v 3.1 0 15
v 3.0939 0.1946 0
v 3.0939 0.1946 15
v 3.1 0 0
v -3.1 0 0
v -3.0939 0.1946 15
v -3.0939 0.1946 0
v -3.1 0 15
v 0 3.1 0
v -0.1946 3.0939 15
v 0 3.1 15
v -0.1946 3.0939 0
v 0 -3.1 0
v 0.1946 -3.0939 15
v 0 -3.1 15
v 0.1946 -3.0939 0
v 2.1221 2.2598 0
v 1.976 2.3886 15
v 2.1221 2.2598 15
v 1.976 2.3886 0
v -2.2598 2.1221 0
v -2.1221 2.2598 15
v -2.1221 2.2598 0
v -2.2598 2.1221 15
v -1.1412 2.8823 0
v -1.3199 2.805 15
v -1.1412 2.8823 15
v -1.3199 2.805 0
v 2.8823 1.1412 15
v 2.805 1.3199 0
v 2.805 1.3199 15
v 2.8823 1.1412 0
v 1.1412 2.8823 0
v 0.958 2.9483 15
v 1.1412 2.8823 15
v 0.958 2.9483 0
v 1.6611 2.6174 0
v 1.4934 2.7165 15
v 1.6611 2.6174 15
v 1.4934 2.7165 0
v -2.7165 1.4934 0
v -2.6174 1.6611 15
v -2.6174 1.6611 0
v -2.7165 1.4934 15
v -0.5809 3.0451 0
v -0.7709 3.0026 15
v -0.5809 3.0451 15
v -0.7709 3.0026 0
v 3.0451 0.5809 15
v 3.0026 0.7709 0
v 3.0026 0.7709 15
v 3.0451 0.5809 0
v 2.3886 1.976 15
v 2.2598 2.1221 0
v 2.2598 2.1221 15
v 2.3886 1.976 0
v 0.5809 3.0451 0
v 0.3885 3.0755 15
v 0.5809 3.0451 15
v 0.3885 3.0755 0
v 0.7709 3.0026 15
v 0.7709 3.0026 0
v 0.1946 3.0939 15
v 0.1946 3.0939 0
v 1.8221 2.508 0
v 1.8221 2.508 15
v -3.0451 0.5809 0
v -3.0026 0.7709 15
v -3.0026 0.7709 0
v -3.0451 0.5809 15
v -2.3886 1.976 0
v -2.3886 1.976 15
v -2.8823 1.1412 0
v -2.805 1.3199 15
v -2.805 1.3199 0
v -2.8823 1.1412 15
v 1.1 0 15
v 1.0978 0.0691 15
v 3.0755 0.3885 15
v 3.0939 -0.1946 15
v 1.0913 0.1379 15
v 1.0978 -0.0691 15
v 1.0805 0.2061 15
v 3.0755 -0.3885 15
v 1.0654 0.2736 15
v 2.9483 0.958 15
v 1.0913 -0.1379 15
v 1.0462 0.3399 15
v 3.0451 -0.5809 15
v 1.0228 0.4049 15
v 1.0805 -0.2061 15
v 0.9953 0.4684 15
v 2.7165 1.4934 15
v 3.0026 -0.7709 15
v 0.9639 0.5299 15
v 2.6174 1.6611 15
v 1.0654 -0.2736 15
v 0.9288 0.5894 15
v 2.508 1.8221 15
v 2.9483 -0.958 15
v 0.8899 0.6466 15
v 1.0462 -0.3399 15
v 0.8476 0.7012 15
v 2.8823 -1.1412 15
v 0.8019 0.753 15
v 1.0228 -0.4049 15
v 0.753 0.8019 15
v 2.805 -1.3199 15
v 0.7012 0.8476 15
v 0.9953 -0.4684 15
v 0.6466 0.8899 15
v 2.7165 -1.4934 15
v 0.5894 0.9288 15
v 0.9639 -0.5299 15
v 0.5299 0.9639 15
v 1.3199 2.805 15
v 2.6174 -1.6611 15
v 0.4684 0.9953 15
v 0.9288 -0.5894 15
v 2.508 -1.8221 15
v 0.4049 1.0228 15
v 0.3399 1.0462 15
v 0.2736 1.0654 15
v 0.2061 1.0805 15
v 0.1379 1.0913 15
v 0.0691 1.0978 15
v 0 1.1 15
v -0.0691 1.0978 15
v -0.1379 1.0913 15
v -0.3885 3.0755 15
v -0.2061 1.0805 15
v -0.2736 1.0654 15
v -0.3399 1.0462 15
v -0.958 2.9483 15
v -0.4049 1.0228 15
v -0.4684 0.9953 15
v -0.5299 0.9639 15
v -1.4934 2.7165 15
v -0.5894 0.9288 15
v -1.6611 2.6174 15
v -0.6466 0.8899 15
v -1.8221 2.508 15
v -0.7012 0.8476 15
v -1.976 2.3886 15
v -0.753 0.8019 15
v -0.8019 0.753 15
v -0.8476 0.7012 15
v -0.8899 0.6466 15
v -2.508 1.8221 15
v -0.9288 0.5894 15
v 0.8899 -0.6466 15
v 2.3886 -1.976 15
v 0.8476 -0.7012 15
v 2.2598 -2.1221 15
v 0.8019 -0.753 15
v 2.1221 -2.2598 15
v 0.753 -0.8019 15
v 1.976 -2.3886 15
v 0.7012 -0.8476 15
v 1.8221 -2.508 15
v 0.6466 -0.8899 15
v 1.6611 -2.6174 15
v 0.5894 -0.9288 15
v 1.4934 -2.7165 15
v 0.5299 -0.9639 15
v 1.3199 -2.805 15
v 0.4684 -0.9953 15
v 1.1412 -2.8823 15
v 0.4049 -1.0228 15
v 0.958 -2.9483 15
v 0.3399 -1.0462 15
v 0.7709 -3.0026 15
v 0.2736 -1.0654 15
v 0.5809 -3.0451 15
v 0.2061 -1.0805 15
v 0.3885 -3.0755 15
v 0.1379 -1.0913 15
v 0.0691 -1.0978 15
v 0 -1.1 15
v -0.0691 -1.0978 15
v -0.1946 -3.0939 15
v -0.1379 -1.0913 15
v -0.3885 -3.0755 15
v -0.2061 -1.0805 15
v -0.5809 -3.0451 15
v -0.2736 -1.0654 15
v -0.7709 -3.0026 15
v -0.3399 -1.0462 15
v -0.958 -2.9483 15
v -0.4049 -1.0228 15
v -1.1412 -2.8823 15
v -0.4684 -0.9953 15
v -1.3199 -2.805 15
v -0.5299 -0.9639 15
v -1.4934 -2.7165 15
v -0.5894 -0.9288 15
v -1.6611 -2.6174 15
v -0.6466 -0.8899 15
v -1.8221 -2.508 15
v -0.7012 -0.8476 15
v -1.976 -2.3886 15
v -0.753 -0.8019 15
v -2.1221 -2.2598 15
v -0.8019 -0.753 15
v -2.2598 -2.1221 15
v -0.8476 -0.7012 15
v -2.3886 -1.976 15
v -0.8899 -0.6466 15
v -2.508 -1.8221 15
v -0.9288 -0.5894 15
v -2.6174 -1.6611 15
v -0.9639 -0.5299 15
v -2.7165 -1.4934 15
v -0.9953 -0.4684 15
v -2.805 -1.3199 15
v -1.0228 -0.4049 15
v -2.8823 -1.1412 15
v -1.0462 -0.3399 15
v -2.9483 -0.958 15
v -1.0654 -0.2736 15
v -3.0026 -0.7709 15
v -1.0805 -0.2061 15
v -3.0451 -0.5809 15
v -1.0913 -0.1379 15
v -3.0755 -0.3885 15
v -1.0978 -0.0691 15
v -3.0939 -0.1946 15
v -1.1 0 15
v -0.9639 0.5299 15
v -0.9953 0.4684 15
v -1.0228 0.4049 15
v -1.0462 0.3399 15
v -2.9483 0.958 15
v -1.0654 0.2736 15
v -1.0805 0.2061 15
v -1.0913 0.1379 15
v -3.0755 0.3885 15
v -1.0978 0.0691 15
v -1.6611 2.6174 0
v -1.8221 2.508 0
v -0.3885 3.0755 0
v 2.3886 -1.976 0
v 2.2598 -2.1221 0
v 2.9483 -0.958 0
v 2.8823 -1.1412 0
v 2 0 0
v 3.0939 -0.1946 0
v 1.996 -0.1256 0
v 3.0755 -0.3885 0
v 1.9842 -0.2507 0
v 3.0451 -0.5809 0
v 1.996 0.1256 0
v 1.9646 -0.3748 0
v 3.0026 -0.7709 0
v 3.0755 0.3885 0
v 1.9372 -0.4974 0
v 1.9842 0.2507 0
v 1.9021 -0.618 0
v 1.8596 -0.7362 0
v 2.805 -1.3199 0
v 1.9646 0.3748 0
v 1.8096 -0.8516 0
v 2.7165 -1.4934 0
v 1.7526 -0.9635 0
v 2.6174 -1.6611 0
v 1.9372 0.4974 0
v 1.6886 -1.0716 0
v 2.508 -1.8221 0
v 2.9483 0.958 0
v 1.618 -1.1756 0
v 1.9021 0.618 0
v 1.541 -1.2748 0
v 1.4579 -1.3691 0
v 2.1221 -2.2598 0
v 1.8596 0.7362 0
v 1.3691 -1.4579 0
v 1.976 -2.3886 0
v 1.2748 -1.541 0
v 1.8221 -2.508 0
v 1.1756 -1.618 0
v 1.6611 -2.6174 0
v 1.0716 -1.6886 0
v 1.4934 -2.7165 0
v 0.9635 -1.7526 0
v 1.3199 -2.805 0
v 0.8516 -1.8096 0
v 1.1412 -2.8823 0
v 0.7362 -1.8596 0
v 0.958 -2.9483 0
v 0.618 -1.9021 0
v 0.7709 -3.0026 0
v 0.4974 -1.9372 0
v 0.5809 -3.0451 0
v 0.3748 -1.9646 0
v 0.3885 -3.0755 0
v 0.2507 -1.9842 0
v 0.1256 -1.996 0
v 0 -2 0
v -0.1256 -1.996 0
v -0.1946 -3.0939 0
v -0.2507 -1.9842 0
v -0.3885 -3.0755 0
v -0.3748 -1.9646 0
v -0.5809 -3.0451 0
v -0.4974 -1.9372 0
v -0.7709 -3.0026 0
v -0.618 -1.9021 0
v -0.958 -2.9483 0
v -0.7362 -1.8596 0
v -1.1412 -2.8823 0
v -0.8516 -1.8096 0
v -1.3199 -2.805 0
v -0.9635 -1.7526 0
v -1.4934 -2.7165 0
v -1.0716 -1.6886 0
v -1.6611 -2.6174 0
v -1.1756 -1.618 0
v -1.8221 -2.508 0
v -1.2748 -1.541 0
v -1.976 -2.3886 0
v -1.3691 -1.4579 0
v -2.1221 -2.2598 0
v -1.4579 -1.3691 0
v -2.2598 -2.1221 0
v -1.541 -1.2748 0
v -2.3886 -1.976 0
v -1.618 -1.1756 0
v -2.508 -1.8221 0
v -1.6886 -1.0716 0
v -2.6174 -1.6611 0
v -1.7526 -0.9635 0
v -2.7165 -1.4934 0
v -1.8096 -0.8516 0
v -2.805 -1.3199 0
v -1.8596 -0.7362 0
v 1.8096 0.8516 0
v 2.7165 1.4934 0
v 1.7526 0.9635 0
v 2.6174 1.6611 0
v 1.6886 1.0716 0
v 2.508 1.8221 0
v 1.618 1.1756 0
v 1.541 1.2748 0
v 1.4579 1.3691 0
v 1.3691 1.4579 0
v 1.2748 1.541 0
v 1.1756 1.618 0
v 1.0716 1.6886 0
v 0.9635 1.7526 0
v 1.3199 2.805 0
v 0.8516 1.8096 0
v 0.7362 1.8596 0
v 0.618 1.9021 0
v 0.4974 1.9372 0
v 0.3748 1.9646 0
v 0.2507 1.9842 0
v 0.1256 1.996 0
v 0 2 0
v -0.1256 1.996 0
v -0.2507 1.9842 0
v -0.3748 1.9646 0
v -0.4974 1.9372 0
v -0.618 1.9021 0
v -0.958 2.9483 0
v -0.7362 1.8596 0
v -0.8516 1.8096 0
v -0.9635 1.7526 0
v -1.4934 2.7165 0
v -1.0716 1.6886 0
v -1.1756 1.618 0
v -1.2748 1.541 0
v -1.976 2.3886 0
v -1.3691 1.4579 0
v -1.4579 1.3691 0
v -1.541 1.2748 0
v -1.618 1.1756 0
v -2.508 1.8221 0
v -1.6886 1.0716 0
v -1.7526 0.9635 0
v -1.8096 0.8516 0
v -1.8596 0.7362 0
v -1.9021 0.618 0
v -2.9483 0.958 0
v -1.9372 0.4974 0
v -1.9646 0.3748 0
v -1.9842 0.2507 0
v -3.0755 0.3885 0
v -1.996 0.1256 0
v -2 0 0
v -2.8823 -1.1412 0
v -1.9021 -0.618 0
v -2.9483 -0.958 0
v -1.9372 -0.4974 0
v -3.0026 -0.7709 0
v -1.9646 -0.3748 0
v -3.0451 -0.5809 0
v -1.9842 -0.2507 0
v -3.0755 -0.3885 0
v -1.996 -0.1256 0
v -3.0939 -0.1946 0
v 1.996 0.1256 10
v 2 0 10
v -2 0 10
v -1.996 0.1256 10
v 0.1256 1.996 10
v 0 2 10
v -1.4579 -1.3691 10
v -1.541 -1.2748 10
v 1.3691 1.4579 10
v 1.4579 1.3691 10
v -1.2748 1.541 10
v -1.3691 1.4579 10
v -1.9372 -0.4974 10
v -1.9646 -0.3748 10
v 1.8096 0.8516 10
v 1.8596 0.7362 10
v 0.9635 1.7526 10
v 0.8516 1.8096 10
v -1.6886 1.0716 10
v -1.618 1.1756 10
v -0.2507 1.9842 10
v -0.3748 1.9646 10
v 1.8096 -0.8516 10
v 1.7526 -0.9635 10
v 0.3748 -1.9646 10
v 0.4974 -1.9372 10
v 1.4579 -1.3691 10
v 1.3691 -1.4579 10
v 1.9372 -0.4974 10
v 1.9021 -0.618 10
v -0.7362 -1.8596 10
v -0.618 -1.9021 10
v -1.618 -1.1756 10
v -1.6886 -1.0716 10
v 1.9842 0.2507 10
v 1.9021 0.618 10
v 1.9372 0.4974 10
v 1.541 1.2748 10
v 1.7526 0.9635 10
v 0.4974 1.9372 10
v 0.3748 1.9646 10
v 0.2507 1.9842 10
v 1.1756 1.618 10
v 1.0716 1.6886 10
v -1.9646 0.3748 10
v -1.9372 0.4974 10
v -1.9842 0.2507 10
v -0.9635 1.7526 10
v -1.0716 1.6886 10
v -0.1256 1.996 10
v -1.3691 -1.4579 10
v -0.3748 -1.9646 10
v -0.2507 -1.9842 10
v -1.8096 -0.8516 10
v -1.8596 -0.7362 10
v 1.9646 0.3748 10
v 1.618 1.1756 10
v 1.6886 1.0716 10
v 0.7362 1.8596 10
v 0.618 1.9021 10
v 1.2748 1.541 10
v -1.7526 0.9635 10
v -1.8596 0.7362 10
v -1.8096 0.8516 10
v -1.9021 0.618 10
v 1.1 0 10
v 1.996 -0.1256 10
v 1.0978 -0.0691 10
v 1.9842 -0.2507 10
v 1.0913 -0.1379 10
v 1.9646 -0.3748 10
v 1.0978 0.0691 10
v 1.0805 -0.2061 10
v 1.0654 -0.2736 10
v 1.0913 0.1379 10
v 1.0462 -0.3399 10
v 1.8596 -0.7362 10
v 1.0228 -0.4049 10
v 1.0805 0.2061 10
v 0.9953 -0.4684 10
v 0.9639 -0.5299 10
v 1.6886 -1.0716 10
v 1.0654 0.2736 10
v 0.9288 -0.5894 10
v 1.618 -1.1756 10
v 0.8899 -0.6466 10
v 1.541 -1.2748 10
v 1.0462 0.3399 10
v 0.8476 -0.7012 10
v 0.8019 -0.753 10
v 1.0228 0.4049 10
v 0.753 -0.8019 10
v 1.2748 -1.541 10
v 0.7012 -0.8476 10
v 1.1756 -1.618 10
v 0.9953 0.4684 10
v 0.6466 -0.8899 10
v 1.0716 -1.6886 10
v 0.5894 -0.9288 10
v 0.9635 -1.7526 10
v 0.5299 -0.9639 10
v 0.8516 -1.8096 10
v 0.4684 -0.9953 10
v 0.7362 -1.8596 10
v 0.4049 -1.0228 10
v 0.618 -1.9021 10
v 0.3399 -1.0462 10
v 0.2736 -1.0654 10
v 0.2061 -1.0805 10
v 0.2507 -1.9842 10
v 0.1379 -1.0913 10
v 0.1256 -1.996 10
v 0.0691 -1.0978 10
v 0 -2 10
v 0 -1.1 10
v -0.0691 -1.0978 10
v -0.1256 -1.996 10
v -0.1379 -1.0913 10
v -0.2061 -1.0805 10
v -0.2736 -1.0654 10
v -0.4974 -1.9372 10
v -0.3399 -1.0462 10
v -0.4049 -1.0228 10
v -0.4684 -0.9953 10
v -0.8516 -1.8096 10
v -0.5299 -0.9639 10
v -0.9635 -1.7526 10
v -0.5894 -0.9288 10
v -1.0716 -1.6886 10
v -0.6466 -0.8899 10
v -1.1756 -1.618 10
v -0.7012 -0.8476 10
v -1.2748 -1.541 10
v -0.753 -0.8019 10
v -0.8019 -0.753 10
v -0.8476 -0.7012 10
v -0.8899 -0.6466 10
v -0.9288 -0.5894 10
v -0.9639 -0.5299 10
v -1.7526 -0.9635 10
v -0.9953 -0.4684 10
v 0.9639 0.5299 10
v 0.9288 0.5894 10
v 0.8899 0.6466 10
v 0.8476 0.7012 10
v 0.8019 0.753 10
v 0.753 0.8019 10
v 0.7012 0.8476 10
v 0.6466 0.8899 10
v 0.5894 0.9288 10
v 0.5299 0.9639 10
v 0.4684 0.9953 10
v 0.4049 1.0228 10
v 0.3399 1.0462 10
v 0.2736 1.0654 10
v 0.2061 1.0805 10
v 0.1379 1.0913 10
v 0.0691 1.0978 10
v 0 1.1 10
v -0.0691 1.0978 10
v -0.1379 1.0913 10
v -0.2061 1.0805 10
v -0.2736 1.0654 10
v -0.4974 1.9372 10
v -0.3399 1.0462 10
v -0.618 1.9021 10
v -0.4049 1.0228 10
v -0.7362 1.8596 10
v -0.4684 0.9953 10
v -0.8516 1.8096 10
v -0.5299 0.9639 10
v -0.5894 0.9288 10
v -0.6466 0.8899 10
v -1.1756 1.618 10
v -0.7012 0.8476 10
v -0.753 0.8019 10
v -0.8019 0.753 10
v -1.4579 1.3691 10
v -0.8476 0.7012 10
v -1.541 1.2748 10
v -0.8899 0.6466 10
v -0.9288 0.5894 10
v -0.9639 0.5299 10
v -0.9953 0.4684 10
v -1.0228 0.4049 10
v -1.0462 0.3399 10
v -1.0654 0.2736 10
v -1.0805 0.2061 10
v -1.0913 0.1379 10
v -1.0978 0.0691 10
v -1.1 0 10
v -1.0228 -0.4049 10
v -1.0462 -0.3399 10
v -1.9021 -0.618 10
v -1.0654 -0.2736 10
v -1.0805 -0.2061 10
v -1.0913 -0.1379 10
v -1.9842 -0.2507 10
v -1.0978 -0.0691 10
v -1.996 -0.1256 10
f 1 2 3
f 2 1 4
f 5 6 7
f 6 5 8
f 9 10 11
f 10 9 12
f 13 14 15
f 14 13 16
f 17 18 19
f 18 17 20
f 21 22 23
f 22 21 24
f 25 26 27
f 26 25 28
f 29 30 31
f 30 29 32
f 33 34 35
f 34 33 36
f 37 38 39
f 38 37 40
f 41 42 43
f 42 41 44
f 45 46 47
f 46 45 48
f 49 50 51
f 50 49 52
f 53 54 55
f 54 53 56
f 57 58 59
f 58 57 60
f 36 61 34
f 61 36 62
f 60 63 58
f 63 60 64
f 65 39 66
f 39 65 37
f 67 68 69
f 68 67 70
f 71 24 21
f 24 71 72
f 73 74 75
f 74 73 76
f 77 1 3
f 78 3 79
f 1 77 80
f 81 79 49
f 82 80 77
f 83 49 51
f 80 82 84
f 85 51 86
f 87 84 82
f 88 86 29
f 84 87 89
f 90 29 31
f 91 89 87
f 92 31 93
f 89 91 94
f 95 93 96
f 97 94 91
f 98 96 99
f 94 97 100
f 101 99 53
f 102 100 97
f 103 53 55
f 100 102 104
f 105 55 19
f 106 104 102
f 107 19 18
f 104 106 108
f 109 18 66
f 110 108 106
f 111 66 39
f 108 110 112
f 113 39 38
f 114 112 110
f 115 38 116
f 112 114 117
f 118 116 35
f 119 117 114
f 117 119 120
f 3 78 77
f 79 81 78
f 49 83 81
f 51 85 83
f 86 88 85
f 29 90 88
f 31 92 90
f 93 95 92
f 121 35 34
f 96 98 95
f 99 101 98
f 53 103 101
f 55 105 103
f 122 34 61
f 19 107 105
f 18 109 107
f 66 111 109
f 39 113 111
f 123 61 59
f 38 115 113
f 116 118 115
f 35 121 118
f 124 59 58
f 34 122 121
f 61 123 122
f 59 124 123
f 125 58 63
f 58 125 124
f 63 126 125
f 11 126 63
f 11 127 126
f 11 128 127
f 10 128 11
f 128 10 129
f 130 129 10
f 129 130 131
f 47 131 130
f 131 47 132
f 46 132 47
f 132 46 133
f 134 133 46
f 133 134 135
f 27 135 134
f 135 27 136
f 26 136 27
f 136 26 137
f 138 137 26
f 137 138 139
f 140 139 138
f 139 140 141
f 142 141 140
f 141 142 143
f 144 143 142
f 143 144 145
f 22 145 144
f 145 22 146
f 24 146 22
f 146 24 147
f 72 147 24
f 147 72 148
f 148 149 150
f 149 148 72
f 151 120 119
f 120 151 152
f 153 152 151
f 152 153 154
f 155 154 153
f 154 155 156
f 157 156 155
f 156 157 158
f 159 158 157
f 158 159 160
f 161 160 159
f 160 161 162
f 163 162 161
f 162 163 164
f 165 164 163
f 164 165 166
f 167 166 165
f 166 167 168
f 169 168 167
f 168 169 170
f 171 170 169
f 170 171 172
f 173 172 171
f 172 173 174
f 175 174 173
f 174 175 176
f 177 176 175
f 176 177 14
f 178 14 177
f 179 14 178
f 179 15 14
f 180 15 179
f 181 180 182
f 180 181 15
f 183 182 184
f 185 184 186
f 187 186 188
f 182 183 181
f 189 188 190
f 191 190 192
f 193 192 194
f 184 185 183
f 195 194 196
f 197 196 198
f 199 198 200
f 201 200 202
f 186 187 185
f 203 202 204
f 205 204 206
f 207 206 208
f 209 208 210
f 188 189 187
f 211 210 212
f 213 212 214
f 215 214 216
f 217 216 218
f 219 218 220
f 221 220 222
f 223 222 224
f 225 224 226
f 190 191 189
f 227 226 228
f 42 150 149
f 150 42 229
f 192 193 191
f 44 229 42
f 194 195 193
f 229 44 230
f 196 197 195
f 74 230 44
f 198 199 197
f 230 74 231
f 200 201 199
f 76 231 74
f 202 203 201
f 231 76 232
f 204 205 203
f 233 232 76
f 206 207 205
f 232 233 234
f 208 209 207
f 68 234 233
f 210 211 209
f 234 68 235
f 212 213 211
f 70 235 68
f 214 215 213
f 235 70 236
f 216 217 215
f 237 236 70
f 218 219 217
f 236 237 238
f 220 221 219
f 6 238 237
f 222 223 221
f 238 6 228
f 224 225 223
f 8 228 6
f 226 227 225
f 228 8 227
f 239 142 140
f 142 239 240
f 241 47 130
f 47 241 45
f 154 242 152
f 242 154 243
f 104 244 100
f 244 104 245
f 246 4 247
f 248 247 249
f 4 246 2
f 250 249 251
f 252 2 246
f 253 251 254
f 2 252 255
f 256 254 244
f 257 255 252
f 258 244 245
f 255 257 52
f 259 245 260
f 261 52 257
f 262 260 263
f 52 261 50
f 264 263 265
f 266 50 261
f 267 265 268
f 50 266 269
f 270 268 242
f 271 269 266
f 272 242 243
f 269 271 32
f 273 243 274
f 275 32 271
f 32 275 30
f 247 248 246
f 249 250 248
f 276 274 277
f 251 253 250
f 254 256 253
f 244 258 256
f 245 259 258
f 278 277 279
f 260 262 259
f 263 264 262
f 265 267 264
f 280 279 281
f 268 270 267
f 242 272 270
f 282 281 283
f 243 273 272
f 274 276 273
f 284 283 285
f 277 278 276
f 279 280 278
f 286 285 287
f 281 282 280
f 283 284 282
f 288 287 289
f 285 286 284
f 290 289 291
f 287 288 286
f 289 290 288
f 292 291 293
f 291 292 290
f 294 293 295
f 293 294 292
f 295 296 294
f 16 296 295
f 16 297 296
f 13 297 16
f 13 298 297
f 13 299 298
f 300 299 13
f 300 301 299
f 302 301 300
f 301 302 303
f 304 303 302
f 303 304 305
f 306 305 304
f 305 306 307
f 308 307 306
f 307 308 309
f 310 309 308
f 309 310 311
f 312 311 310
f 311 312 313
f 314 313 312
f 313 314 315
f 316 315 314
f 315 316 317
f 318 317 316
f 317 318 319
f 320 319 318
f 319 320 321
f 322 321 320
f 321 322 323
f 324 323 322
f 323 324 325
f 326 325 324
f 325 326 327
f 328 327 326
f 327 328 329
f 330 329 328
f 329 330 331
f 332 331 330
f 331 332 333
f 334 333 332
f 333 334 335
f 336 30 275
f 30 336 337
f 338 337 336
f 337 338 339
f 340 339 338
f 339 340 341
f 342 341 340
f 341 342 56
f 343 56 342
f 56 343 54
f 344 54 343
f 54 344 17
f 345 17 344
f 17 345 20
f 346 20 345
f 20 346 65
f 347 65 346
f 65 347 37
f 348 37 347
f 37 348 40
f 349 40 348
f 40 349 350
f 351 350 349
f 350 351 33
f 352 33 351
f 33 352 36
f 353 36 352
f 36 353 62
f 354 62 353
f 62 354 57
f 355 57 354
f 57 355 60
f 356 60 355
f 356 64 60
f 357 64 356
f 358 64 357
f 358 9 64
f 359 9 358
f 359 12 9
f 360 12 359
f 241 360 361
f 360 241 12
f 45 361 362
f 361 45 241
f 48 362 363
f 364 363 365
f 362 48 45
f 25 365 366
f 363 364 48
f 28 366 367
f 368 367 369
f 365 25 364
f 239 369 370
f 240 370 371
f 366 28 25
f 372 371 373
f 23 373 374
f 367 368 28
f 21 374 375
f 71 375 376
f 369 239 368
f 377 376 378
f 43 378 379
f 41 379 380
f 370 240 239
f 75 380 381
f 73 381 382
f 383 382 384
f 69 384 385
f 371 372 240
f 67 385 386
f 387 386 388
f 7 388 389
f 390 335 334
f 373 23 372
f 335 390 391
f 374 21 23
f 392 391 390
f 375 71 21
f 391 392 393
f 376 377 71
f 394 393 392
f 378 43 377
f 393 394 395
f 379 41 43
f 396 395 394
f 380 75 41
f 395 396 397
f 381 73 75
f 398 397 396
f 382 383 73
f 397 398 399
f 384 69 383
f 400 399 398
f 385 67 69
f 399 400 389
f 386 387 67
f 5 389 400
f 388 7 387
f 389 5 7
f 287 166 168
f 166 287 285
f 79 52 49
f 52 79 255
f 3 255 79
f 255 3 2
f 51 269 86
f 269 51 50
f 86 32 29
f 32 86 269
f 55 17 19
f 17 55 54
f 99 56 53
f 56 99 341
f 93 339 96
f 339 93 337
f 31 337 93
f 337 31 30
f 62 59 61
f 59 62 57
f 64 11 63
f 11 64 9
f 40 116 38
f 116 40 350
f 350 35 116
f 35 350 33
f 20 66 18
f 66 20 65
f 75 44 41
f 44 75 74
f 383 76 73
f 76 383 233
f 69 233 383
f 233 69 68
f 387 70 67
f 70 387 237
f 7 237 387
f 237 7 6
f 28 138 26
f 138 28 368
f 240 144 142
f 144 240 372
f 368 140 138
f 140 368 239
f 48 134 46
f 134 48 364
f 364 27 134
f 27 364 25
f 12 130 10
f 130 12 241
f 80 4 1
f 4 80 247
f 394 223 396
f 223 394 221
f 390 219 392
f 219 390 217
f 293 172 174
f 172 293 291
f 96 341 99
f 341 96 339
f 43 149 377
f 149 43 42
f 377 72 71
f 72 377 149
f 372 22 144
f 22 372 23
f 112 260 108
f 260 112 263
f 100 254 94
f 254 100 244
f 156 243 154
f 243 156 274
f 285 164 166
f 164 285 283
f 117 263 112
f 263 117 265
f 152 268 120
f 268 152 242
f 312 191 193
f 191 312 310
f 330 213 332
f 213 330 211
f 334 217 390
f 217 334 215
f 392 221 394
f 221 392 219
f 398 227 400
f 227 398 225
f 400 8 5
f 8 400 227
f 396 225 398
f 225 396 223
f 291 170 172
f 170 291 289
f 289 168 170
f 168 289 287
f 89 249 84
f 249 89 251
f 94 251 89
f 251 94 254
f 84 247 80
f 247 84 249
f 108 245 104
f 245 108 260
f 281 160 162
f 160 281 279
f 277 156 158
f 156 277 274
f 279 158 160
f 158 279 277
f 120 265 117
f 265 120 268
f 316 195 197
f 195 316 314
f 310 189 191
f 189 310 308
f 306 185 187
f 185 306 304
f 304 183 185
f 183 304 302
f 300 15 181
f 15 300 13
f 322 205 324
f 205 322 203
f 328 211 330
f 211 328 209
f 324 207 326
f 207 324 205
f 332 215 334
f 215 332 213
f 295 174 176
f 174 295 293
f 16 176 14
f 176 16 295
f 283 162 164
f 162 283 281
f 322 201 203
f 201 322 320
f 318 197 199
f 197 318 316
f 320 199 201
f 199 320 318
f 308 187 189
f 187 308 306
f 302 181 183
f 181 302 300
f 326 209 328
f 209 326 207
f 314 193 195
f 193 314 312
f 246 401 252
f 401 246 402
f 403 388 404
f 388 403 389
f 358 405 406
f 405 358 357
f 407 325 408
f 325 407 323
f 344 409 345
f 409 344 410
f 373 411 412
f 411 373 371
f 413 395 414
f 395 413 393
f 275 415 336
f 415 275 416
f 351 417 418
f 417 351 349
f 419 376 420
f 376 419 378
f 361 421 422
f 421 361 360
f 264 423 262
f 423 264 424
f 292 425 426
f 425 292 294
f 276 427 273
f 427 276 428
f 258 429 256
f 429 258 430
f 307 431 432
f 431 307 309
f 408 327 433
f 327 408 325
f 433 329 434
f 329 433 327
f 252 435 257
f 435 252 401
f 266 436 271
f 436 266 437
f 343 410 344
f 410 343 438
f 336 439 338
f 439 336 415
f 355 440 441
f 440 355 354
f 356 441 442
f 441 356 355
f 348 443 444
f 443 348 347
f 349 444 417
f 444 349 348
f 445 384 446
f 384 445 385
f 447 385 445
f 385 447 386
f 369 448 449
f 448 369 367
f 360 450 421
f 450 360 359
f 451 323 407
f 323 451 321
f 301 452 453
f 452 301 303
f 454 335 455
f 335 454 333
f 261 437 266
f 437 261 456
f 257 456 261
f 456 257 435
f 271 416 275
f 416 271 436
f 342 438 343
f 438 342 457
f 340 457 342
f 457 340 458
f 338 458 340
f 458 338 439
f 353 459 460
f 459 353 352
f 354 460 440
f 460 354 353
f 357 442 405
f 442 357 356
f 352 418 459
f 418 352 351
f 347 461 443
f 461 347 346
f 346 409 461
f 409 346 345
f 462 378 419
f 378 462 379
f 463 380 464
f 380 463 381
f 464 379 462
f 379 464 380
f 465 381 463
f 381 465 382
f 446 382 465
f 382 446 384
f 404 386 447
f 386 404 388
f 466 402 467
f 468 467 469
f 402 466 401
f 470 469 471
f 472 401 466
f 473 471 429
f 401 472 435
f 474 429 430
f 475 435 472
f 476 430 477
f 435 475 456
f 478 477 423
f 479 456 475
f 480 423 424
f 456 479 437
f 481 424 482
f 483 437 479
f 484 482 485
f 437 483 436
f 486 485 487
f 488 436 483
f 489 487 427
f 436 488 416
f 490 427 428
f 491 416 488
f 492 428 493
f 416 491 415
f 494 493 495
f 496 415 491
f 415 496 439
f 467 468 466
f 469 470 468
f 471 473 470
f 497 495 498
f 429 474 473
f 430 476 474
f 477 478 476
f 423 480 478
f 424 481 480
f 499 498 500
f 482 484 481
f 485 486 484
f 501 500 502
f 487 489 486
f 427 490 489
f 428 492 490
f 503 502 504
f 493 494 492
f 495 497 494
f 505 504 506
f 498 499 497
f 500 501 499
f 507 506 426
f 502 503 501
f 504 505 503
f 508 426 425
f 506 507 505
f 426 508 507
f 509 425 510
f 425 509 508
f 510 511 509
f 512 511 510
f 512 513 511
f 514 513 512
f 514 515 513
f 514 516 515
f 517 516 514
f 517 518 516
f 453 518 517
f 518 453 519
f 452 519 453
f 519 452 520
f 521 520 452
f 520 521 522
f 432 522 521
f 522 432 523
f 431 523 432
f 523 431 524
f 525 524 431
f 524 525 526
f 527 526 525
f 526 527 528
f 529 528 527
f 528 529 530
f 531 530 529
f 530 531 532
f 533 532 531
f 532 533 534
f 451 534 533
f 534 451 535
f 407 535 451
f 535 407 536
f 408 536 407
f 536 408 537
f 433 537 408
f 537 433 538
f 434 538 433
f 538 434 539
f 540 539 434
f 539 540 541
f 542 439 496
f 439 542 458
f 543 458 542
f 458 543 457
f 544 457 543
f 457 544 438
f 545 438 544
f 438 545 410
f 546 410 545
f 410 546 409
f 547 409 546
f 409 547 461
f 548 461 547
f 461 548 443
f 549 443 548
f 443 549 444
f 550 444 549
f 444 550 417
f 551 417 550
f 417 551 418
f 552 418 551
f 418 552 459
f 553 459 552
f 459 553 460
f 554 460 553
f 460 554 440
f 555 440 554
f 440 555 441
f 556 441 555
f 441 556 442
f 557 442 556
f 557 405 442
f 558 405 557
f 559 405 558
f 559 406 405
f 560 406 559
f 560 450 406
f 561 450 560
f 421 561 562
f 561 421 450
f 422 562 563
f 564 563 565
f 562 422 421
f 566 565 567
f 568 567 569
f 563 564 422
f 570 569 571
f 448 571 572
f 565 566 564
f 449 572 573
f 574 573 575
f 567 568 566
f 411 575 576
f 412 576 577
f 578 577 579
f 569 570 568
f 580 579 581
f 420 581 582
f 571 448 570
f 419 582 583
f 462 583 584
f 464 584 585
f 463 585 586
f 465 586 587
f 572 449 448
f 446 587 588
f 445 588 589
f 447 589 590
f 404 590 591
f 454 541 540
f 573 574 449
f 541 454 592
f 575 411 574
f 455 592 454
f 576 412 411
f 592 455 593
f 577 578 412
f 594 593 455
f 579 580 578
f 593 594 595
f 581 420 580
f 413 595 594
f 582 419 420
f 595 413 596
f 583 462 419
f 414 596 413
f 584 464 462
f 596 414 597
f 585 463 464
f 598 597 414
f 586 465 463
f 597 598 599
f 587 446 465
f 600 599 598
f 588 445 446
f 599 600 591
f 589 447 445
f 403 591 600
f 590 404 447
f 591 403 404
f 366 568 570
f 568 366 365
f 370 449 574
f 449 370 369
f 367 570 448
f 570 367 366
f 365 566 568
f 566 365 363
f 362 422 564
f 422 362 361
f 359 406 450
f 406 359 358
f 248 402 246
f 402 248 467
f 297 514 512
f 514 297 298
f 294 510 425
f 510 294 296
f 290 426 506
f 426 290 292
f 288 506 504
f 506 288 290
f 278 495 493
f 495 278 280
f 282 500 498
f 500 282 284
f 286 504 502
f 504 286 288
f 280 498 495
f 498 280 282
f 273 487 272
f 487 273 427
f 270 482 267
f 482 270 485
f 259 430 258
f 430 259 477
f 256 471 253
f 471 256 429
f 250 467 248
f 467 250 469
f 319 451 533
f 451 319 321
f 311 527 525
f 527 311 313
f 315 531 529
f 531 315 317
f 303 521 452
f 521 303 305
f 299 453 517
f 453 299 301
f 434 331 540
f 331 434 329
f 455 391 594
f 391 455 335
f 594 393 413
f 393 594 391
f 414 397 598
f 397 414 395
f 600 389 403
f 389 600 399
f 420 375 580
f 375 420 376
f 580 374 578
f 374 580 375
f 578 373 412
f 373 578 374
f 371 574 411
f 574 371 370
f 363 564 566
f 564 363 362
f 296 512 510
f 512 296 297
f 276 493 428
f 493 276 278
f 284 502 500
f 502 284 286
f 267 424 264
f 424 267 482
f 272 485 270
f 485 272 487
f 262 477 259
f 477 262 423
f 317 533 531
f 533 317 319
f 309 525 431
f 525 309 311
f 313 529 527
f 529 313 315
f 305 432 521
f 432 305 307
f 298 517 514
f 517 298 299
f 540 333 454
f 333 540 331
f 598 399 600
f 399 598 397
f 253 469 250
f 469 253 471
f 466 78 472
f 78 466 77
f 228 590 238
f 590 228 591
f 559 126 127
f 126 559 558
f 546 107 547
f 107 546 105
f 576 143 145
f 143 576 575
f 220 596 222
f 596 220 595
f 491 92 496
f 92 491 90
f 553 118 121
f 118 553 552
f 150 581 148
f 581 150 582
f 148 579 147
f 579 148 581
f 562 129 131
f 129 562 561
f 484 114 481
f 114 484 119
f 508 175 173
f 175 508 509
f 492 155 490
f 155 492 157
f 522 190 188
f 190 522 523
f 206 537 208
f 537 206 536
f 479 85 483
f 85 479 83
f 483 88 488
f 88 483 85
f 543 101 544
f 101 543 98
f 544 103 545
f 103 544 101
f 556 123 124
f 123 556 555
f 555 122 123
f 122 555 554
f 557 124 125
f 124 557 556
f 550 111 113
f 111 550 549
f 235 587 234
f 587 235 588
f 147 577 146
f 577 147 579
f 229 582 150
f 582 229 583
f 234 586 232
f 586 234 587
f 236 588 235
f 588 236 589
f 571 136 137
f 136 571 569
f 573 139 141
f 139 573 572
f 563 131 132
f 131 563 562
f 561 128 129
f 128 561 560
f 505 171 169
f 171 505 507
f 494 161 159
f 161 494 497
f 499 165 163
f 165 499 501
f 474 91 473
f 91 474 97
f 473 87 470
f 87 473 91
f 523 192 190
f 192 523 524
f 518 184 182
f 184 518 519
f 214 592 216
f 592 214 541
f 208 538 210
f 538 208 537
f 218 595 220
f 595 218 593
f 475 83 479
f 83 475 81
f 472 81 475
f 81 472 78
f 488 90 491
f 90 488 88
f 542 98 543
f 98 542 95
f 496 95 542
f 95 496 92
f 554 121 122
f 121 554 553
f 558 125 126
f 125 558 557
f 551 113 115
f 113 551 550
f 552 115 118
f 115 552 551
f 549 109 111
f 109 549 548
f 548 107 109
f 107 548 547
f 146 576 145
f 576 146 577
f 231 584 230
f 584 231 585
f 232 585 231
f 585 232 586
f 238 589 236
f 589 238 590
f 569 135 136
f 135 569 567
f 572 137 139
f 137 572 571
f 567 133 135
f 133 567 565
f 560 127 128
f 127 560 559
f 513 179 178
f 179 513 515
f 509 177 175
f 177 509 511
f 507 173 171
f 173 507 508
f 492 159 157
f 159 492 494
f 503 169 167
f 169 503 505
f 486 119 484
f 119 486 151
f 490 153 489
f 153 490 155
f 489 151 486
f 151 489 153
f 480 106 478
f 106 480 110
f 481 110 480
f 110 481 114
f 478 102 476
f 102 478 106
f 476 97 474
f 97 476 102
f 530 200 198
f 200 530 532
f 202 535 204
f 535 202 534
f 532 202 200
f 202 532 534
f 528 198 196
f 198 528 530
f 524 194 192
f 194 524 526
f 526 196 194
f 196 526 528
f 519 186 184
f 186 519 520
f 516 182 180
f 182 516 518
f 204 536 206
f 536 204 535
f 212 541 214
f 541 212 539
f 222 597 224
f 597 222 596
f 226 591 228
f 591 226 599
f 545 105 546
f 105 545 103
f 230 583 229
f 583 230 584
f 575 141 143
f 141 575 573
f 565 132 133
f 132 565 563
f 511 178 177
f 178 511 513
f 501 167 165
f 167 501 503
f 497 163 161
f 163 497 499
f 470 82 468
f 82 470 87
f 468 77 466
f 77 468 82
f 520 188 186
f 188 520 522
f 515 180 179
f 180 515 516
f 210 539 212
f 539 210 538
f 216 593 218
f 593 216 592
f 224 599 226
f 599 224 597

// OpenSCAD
$fn=100;
difference(){
    cylinder(d=6.2, h=15);
    cylinder(d=4, h=10);
    cylinder(d=2.2, h=55);
}
